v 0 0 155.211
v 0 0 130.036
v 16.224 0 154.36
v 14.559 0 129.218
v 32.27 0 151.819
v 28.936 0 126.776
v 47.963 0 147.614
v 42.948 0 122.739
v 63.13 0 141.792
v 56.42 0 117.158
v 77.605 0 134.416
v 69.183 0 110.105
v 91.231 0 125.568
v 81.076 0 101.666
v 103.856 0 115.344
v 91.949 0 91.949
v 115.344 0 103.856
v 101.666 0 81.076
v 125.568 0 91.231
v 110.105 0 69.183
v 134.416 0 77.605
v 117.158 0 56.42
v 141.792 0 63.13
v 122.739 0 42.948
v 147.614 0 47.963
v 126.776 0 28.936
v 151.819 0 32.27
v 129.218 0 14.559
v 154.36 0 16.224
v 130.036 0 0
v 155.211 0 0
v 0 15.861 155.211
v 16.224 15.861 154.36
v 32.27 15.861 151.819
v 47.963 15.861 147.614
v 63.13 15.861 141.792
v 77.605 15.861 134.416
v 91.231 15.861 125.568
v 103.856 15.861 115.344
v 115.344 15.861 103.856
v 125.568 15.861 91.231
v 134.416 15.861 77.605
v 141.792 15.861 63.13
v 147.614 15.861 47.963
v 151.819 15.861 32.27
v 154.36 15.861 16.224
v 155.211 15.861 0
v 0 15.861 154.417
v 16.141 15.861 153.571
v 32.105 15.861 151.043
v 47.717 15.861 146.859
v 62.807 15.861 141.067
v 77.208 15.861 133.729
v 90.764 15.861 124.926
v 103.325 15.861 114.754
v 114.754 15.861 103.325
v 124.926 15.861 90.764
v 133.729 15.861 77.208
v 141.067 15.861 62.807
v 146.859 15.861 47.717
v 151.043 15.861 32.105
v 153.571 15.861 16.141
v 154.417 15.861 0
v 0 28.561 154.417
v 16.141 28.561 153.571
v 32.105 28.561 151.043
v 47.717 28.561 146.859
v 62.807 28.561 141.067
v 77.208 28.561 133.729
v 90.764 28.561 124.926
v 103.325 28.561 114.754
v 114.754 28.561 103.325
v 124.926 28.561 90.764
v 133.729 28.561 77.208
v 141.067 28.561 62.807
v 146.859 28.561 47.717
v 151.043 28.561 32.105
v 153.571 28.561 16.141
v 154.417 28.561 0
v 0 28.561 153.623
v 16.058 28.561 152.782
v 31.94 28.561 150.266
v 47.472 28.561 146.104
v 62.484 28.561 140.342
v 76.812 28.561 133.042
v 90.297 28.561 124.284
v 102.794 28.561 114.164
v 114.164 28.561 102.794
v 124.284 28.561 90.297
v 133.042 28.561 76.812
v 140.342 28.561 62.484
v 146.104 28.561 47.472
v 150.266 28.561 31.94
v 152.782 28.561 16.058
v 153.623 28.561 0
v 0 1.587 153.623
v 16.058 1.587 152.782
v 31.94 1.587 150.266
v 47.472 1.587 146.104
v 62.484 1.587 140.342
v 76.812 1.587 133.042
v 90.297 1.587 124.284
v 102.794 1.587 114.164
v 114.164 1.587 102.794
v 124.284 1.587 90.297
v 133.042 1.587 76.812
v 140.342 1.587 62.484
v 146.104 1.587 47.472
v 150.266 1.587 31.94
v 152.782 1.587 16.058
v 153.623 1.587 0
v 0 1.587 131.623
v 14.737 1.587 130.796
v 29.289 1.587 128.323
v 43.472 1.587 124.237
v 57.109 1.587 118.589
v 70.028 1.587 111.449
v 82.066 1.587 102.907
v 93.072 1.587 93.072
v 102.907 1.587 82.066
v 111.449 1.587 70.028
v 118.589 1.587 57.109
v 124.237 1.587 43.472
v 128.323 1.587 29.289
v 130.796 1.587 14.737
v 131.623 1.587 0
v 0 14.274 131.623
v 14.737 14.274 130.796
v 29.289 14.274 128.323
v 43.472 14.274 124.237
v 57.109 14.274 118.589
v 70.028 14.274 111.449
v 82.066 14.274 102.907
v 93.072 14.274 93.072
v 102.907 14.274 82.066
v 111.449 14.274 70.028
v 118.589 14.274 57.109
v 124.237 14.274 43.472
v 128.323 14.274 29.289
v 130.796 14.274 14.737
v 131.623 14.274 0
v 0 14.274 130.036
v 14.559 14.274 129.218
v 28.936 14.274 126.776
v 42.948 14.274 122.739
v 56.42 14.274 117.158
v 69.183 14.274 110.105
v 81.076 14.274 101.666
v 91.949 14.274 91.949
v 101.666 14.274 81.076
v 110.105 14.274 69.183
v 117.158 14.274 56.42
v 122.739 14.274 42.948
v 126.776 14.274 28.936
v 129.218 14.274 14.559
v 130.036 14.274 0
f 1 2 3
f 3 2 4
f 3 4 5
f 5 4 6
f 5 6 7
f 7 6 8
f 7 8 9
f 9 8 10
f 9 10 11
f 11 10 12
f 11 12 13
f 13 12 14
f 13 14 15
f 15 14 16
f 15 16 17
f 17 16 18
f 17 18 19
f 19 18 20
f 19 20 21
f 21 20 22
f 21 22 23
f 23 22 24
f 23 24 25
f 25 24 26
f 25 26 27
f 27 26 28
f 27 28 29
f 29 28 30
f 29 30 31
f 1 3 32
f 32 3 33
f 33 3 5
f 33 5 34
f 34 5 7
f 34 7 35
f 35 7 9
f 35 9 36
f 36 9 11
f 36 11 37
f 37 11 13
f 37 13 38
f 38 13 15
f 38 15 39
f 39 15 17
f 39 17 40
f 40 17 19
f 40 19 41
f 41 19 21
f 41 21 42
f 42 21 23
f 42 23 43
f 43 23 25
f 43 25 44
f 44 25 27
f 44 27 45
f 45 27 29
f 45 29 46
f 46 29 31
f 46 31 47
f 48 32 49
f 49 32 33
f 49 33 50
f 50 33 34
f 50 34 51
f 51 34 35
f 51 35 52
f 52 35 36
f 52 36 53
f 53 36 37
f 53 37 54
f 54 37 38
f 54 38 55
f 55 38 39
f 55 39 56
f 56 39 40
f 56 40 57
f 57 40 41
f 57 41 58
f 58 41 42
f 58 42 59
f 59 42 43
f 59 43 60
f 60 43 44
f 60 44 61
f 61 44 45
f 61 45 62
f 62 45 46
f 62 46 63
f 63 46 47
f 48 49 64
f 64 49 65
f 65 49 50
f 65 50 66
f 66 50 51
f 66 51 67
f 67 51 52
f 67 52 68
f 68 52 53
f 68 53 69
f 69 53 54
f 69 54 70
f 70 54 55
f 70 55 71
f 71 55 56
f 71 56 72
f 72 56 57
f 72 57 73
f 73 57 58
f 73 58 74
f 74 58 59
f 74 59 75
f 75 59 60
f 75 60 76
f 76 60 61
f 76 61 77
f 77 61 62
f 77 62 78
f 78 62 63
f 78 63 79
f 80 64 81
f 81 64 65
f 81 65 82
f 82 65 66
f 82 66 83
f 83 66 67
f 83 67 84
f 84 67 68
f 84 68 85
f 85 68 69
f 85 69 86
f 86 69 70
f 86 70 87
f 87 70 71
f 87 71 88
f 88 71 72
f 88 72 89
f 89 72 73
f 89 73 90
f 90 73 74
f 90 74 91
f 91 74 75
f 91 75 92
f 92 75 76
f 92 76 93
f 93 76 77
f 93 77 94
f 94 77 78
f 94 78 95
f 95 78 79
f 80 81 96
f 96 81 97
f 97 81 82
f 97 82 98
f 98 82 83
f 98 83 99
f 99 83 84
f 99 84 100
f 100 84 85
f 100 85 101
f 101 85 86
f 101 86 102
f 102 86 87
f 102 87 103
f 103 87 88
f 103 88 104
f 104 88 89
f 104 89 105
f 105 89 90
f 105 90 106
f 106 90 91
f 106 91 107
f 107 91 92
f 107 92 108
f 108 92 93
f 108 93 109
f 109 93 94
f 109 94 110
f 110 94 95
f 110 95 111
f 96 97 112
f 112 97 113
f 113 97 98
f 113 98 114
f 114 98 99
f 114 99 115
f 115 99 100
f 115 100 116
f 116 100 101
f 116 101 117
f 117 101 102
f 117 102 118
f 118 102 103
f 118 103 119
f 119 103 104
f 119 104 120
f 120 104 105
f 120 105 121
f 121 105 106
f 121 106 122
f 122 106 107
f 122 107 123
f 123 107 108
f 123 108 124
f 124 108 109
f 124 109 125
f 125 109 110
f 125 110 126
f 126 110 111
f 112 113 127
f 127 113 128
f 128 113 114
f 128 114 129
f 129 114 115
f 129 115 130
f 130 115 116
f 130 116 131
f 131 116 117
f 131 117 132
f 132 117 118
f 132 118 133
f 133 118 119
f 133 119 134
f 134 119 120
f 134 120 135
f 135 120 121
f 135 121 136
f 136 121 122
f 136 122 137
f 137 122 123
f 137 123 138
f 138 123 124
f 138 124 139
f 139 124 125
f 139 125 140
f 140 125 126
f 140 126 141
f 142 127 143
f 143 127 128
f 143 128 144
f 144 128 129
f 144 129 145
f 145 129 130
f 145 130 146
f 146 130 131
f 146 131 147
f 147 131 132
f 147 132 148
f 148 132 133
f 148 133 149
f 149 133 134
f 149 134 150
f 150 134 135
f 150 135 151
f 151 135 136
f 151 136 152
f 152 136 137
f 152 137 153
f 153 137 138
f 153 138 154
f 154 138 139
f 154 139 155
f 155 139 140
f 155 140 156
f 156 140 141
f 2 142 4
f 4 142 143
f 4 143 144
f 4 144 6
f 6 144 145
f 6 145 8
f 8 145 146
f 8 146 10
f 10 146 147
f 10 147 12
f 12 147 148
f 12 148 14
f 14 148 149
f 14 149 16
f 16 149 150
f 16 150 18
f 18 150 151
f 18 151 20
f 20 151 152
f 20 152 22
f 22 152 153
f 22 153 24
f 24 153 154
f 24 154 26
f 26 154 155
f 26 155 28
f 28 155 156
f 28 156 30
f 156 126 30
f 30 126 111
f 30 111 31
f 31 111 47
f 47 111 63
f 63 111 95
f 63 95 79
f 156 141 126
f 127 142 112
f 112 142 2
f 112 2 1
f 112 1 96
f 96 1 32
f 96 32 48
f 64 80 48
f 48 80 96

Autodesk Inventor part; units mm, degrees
ref_plane "YZ Plane" through (0, 0, 0) normal (1, 0, 0) x (0, 1, 0)
ref_plane "XZ Plane" through (0, 0, 0) normal (0, 1, 0) x (-1, 0, 0)
ref_plane "XY Plane" through (0, 0, 0) normal (0, 0, 1) x (1, 0, 0)
sketch "Sketch1" plane through (0, 0, 0) normal (1, 0, 0) x (0, 1, 0)
  line L0 (0, 0) -> (73.993, 0)
  line L1 (0, 130.0359) -> (44.4227, 130.0359)
  line L2 (0, 130.0359) -> (0, 155.2107)
  line L3 (0, 155.2107) -> (15.8613, 155.2107)
  line L4 (44.4227, 155.2107) -> (44.4227, 130.0359)
  line L5 (28.5613, 153.6232) -> (1.5875, 153.6232)
  line L6 (1.5875, 153.6232) -> (1.5875, 131.6234)
  line L7 (1.5875, 131.6234) -> (42.8352, 131.6234)
  line L8 (42.8352, 131.6234) -> (42.8352, 153.6232)
  line L9 (18.2426, 143.1015) -> (18.2426, 119.3292)
  line L10 (14.2738, 131.6234) -> (14.2738, 130.0359)
  line L11 (22.2113, 131.6234) -> (22.2113, 130.0359)
  line L12 (22.2113, 154.417) -> (28.5613, 154.417)
  line L13 (28.5613, 154.417) -> (28.5613, 153.6232)
  line L14 (22.2113, 154.417) -> (15.8613, 154.417)
  line L15 (15.8613, 154.417) -> (15.8613, 155.2107)
  line L16 (22.2113, 172.7158) -> (22.2113, 154.417)
  line L17 (22.2113, 153.6232) -> (22.2113, 148.8604)
  dimension "d1" = 25.1748
  dimension "d2" = 130.0359
  dimension "Height" = 44.4227
  dimension "d4" = 0
  dimension "d5" = 1.5875
  dimension "d6" = 1.5875
  dimension "d7" = 1.5875
  dimension "d8" = 1.5875
  dimension "d9" = 18.2426
  dimension "d10" = 7.9375
  dimension "d11" = 3.9688
  dimension "d14" = 0.7937
  dimension "d15" = 6.35
  dimension "d16" = 6.35
revolve "Revolution1" add sketch "Sketch1" angle 90 about axis through (0, 0, 0) along (0, 1, 0) contours L2 L3 L15 L14 L12 L13 L5 L6 L7 L10 L1
equation "\"d2\" = 0.5 * IBDia - 3 * SpWall"
equation "\"Height\" = Wall + 4 * SpWall + BevDriverDia + d1_1"
equation "\"d5\" = Wall"
equation "\"d6\" = Wall"
equation "\"d7\" = Wall"
equation "\"d8\" = Wall"
equation "\"d9\" = 2 * SpWall + 0.5 * BevDriverDia"
equation "\"d10\" = AxelDia + Space"
equation "\"d11\" = 0.5 * Space + 0.5 * AxelDia"
equation "\"d14\" = 0.5 * Wall"
equation "\"IDia\" = 266.7"
equation "\"Wall\" = 1.5875"
equation "\"Space\" = 1.5875"
equation "\"SpWall\" = 3.175"
equation "\"AxelDia\" = 6.35"
equation "\"d13\" = 0.5 * Height"
equation "\"IBDia\" = 279.121792"
equation "\"BevDriverDia\" = 23.785175"
equation "\"d1_1\" = 6.35"
properties part number "OuterShell_Bottom_Quarter"
